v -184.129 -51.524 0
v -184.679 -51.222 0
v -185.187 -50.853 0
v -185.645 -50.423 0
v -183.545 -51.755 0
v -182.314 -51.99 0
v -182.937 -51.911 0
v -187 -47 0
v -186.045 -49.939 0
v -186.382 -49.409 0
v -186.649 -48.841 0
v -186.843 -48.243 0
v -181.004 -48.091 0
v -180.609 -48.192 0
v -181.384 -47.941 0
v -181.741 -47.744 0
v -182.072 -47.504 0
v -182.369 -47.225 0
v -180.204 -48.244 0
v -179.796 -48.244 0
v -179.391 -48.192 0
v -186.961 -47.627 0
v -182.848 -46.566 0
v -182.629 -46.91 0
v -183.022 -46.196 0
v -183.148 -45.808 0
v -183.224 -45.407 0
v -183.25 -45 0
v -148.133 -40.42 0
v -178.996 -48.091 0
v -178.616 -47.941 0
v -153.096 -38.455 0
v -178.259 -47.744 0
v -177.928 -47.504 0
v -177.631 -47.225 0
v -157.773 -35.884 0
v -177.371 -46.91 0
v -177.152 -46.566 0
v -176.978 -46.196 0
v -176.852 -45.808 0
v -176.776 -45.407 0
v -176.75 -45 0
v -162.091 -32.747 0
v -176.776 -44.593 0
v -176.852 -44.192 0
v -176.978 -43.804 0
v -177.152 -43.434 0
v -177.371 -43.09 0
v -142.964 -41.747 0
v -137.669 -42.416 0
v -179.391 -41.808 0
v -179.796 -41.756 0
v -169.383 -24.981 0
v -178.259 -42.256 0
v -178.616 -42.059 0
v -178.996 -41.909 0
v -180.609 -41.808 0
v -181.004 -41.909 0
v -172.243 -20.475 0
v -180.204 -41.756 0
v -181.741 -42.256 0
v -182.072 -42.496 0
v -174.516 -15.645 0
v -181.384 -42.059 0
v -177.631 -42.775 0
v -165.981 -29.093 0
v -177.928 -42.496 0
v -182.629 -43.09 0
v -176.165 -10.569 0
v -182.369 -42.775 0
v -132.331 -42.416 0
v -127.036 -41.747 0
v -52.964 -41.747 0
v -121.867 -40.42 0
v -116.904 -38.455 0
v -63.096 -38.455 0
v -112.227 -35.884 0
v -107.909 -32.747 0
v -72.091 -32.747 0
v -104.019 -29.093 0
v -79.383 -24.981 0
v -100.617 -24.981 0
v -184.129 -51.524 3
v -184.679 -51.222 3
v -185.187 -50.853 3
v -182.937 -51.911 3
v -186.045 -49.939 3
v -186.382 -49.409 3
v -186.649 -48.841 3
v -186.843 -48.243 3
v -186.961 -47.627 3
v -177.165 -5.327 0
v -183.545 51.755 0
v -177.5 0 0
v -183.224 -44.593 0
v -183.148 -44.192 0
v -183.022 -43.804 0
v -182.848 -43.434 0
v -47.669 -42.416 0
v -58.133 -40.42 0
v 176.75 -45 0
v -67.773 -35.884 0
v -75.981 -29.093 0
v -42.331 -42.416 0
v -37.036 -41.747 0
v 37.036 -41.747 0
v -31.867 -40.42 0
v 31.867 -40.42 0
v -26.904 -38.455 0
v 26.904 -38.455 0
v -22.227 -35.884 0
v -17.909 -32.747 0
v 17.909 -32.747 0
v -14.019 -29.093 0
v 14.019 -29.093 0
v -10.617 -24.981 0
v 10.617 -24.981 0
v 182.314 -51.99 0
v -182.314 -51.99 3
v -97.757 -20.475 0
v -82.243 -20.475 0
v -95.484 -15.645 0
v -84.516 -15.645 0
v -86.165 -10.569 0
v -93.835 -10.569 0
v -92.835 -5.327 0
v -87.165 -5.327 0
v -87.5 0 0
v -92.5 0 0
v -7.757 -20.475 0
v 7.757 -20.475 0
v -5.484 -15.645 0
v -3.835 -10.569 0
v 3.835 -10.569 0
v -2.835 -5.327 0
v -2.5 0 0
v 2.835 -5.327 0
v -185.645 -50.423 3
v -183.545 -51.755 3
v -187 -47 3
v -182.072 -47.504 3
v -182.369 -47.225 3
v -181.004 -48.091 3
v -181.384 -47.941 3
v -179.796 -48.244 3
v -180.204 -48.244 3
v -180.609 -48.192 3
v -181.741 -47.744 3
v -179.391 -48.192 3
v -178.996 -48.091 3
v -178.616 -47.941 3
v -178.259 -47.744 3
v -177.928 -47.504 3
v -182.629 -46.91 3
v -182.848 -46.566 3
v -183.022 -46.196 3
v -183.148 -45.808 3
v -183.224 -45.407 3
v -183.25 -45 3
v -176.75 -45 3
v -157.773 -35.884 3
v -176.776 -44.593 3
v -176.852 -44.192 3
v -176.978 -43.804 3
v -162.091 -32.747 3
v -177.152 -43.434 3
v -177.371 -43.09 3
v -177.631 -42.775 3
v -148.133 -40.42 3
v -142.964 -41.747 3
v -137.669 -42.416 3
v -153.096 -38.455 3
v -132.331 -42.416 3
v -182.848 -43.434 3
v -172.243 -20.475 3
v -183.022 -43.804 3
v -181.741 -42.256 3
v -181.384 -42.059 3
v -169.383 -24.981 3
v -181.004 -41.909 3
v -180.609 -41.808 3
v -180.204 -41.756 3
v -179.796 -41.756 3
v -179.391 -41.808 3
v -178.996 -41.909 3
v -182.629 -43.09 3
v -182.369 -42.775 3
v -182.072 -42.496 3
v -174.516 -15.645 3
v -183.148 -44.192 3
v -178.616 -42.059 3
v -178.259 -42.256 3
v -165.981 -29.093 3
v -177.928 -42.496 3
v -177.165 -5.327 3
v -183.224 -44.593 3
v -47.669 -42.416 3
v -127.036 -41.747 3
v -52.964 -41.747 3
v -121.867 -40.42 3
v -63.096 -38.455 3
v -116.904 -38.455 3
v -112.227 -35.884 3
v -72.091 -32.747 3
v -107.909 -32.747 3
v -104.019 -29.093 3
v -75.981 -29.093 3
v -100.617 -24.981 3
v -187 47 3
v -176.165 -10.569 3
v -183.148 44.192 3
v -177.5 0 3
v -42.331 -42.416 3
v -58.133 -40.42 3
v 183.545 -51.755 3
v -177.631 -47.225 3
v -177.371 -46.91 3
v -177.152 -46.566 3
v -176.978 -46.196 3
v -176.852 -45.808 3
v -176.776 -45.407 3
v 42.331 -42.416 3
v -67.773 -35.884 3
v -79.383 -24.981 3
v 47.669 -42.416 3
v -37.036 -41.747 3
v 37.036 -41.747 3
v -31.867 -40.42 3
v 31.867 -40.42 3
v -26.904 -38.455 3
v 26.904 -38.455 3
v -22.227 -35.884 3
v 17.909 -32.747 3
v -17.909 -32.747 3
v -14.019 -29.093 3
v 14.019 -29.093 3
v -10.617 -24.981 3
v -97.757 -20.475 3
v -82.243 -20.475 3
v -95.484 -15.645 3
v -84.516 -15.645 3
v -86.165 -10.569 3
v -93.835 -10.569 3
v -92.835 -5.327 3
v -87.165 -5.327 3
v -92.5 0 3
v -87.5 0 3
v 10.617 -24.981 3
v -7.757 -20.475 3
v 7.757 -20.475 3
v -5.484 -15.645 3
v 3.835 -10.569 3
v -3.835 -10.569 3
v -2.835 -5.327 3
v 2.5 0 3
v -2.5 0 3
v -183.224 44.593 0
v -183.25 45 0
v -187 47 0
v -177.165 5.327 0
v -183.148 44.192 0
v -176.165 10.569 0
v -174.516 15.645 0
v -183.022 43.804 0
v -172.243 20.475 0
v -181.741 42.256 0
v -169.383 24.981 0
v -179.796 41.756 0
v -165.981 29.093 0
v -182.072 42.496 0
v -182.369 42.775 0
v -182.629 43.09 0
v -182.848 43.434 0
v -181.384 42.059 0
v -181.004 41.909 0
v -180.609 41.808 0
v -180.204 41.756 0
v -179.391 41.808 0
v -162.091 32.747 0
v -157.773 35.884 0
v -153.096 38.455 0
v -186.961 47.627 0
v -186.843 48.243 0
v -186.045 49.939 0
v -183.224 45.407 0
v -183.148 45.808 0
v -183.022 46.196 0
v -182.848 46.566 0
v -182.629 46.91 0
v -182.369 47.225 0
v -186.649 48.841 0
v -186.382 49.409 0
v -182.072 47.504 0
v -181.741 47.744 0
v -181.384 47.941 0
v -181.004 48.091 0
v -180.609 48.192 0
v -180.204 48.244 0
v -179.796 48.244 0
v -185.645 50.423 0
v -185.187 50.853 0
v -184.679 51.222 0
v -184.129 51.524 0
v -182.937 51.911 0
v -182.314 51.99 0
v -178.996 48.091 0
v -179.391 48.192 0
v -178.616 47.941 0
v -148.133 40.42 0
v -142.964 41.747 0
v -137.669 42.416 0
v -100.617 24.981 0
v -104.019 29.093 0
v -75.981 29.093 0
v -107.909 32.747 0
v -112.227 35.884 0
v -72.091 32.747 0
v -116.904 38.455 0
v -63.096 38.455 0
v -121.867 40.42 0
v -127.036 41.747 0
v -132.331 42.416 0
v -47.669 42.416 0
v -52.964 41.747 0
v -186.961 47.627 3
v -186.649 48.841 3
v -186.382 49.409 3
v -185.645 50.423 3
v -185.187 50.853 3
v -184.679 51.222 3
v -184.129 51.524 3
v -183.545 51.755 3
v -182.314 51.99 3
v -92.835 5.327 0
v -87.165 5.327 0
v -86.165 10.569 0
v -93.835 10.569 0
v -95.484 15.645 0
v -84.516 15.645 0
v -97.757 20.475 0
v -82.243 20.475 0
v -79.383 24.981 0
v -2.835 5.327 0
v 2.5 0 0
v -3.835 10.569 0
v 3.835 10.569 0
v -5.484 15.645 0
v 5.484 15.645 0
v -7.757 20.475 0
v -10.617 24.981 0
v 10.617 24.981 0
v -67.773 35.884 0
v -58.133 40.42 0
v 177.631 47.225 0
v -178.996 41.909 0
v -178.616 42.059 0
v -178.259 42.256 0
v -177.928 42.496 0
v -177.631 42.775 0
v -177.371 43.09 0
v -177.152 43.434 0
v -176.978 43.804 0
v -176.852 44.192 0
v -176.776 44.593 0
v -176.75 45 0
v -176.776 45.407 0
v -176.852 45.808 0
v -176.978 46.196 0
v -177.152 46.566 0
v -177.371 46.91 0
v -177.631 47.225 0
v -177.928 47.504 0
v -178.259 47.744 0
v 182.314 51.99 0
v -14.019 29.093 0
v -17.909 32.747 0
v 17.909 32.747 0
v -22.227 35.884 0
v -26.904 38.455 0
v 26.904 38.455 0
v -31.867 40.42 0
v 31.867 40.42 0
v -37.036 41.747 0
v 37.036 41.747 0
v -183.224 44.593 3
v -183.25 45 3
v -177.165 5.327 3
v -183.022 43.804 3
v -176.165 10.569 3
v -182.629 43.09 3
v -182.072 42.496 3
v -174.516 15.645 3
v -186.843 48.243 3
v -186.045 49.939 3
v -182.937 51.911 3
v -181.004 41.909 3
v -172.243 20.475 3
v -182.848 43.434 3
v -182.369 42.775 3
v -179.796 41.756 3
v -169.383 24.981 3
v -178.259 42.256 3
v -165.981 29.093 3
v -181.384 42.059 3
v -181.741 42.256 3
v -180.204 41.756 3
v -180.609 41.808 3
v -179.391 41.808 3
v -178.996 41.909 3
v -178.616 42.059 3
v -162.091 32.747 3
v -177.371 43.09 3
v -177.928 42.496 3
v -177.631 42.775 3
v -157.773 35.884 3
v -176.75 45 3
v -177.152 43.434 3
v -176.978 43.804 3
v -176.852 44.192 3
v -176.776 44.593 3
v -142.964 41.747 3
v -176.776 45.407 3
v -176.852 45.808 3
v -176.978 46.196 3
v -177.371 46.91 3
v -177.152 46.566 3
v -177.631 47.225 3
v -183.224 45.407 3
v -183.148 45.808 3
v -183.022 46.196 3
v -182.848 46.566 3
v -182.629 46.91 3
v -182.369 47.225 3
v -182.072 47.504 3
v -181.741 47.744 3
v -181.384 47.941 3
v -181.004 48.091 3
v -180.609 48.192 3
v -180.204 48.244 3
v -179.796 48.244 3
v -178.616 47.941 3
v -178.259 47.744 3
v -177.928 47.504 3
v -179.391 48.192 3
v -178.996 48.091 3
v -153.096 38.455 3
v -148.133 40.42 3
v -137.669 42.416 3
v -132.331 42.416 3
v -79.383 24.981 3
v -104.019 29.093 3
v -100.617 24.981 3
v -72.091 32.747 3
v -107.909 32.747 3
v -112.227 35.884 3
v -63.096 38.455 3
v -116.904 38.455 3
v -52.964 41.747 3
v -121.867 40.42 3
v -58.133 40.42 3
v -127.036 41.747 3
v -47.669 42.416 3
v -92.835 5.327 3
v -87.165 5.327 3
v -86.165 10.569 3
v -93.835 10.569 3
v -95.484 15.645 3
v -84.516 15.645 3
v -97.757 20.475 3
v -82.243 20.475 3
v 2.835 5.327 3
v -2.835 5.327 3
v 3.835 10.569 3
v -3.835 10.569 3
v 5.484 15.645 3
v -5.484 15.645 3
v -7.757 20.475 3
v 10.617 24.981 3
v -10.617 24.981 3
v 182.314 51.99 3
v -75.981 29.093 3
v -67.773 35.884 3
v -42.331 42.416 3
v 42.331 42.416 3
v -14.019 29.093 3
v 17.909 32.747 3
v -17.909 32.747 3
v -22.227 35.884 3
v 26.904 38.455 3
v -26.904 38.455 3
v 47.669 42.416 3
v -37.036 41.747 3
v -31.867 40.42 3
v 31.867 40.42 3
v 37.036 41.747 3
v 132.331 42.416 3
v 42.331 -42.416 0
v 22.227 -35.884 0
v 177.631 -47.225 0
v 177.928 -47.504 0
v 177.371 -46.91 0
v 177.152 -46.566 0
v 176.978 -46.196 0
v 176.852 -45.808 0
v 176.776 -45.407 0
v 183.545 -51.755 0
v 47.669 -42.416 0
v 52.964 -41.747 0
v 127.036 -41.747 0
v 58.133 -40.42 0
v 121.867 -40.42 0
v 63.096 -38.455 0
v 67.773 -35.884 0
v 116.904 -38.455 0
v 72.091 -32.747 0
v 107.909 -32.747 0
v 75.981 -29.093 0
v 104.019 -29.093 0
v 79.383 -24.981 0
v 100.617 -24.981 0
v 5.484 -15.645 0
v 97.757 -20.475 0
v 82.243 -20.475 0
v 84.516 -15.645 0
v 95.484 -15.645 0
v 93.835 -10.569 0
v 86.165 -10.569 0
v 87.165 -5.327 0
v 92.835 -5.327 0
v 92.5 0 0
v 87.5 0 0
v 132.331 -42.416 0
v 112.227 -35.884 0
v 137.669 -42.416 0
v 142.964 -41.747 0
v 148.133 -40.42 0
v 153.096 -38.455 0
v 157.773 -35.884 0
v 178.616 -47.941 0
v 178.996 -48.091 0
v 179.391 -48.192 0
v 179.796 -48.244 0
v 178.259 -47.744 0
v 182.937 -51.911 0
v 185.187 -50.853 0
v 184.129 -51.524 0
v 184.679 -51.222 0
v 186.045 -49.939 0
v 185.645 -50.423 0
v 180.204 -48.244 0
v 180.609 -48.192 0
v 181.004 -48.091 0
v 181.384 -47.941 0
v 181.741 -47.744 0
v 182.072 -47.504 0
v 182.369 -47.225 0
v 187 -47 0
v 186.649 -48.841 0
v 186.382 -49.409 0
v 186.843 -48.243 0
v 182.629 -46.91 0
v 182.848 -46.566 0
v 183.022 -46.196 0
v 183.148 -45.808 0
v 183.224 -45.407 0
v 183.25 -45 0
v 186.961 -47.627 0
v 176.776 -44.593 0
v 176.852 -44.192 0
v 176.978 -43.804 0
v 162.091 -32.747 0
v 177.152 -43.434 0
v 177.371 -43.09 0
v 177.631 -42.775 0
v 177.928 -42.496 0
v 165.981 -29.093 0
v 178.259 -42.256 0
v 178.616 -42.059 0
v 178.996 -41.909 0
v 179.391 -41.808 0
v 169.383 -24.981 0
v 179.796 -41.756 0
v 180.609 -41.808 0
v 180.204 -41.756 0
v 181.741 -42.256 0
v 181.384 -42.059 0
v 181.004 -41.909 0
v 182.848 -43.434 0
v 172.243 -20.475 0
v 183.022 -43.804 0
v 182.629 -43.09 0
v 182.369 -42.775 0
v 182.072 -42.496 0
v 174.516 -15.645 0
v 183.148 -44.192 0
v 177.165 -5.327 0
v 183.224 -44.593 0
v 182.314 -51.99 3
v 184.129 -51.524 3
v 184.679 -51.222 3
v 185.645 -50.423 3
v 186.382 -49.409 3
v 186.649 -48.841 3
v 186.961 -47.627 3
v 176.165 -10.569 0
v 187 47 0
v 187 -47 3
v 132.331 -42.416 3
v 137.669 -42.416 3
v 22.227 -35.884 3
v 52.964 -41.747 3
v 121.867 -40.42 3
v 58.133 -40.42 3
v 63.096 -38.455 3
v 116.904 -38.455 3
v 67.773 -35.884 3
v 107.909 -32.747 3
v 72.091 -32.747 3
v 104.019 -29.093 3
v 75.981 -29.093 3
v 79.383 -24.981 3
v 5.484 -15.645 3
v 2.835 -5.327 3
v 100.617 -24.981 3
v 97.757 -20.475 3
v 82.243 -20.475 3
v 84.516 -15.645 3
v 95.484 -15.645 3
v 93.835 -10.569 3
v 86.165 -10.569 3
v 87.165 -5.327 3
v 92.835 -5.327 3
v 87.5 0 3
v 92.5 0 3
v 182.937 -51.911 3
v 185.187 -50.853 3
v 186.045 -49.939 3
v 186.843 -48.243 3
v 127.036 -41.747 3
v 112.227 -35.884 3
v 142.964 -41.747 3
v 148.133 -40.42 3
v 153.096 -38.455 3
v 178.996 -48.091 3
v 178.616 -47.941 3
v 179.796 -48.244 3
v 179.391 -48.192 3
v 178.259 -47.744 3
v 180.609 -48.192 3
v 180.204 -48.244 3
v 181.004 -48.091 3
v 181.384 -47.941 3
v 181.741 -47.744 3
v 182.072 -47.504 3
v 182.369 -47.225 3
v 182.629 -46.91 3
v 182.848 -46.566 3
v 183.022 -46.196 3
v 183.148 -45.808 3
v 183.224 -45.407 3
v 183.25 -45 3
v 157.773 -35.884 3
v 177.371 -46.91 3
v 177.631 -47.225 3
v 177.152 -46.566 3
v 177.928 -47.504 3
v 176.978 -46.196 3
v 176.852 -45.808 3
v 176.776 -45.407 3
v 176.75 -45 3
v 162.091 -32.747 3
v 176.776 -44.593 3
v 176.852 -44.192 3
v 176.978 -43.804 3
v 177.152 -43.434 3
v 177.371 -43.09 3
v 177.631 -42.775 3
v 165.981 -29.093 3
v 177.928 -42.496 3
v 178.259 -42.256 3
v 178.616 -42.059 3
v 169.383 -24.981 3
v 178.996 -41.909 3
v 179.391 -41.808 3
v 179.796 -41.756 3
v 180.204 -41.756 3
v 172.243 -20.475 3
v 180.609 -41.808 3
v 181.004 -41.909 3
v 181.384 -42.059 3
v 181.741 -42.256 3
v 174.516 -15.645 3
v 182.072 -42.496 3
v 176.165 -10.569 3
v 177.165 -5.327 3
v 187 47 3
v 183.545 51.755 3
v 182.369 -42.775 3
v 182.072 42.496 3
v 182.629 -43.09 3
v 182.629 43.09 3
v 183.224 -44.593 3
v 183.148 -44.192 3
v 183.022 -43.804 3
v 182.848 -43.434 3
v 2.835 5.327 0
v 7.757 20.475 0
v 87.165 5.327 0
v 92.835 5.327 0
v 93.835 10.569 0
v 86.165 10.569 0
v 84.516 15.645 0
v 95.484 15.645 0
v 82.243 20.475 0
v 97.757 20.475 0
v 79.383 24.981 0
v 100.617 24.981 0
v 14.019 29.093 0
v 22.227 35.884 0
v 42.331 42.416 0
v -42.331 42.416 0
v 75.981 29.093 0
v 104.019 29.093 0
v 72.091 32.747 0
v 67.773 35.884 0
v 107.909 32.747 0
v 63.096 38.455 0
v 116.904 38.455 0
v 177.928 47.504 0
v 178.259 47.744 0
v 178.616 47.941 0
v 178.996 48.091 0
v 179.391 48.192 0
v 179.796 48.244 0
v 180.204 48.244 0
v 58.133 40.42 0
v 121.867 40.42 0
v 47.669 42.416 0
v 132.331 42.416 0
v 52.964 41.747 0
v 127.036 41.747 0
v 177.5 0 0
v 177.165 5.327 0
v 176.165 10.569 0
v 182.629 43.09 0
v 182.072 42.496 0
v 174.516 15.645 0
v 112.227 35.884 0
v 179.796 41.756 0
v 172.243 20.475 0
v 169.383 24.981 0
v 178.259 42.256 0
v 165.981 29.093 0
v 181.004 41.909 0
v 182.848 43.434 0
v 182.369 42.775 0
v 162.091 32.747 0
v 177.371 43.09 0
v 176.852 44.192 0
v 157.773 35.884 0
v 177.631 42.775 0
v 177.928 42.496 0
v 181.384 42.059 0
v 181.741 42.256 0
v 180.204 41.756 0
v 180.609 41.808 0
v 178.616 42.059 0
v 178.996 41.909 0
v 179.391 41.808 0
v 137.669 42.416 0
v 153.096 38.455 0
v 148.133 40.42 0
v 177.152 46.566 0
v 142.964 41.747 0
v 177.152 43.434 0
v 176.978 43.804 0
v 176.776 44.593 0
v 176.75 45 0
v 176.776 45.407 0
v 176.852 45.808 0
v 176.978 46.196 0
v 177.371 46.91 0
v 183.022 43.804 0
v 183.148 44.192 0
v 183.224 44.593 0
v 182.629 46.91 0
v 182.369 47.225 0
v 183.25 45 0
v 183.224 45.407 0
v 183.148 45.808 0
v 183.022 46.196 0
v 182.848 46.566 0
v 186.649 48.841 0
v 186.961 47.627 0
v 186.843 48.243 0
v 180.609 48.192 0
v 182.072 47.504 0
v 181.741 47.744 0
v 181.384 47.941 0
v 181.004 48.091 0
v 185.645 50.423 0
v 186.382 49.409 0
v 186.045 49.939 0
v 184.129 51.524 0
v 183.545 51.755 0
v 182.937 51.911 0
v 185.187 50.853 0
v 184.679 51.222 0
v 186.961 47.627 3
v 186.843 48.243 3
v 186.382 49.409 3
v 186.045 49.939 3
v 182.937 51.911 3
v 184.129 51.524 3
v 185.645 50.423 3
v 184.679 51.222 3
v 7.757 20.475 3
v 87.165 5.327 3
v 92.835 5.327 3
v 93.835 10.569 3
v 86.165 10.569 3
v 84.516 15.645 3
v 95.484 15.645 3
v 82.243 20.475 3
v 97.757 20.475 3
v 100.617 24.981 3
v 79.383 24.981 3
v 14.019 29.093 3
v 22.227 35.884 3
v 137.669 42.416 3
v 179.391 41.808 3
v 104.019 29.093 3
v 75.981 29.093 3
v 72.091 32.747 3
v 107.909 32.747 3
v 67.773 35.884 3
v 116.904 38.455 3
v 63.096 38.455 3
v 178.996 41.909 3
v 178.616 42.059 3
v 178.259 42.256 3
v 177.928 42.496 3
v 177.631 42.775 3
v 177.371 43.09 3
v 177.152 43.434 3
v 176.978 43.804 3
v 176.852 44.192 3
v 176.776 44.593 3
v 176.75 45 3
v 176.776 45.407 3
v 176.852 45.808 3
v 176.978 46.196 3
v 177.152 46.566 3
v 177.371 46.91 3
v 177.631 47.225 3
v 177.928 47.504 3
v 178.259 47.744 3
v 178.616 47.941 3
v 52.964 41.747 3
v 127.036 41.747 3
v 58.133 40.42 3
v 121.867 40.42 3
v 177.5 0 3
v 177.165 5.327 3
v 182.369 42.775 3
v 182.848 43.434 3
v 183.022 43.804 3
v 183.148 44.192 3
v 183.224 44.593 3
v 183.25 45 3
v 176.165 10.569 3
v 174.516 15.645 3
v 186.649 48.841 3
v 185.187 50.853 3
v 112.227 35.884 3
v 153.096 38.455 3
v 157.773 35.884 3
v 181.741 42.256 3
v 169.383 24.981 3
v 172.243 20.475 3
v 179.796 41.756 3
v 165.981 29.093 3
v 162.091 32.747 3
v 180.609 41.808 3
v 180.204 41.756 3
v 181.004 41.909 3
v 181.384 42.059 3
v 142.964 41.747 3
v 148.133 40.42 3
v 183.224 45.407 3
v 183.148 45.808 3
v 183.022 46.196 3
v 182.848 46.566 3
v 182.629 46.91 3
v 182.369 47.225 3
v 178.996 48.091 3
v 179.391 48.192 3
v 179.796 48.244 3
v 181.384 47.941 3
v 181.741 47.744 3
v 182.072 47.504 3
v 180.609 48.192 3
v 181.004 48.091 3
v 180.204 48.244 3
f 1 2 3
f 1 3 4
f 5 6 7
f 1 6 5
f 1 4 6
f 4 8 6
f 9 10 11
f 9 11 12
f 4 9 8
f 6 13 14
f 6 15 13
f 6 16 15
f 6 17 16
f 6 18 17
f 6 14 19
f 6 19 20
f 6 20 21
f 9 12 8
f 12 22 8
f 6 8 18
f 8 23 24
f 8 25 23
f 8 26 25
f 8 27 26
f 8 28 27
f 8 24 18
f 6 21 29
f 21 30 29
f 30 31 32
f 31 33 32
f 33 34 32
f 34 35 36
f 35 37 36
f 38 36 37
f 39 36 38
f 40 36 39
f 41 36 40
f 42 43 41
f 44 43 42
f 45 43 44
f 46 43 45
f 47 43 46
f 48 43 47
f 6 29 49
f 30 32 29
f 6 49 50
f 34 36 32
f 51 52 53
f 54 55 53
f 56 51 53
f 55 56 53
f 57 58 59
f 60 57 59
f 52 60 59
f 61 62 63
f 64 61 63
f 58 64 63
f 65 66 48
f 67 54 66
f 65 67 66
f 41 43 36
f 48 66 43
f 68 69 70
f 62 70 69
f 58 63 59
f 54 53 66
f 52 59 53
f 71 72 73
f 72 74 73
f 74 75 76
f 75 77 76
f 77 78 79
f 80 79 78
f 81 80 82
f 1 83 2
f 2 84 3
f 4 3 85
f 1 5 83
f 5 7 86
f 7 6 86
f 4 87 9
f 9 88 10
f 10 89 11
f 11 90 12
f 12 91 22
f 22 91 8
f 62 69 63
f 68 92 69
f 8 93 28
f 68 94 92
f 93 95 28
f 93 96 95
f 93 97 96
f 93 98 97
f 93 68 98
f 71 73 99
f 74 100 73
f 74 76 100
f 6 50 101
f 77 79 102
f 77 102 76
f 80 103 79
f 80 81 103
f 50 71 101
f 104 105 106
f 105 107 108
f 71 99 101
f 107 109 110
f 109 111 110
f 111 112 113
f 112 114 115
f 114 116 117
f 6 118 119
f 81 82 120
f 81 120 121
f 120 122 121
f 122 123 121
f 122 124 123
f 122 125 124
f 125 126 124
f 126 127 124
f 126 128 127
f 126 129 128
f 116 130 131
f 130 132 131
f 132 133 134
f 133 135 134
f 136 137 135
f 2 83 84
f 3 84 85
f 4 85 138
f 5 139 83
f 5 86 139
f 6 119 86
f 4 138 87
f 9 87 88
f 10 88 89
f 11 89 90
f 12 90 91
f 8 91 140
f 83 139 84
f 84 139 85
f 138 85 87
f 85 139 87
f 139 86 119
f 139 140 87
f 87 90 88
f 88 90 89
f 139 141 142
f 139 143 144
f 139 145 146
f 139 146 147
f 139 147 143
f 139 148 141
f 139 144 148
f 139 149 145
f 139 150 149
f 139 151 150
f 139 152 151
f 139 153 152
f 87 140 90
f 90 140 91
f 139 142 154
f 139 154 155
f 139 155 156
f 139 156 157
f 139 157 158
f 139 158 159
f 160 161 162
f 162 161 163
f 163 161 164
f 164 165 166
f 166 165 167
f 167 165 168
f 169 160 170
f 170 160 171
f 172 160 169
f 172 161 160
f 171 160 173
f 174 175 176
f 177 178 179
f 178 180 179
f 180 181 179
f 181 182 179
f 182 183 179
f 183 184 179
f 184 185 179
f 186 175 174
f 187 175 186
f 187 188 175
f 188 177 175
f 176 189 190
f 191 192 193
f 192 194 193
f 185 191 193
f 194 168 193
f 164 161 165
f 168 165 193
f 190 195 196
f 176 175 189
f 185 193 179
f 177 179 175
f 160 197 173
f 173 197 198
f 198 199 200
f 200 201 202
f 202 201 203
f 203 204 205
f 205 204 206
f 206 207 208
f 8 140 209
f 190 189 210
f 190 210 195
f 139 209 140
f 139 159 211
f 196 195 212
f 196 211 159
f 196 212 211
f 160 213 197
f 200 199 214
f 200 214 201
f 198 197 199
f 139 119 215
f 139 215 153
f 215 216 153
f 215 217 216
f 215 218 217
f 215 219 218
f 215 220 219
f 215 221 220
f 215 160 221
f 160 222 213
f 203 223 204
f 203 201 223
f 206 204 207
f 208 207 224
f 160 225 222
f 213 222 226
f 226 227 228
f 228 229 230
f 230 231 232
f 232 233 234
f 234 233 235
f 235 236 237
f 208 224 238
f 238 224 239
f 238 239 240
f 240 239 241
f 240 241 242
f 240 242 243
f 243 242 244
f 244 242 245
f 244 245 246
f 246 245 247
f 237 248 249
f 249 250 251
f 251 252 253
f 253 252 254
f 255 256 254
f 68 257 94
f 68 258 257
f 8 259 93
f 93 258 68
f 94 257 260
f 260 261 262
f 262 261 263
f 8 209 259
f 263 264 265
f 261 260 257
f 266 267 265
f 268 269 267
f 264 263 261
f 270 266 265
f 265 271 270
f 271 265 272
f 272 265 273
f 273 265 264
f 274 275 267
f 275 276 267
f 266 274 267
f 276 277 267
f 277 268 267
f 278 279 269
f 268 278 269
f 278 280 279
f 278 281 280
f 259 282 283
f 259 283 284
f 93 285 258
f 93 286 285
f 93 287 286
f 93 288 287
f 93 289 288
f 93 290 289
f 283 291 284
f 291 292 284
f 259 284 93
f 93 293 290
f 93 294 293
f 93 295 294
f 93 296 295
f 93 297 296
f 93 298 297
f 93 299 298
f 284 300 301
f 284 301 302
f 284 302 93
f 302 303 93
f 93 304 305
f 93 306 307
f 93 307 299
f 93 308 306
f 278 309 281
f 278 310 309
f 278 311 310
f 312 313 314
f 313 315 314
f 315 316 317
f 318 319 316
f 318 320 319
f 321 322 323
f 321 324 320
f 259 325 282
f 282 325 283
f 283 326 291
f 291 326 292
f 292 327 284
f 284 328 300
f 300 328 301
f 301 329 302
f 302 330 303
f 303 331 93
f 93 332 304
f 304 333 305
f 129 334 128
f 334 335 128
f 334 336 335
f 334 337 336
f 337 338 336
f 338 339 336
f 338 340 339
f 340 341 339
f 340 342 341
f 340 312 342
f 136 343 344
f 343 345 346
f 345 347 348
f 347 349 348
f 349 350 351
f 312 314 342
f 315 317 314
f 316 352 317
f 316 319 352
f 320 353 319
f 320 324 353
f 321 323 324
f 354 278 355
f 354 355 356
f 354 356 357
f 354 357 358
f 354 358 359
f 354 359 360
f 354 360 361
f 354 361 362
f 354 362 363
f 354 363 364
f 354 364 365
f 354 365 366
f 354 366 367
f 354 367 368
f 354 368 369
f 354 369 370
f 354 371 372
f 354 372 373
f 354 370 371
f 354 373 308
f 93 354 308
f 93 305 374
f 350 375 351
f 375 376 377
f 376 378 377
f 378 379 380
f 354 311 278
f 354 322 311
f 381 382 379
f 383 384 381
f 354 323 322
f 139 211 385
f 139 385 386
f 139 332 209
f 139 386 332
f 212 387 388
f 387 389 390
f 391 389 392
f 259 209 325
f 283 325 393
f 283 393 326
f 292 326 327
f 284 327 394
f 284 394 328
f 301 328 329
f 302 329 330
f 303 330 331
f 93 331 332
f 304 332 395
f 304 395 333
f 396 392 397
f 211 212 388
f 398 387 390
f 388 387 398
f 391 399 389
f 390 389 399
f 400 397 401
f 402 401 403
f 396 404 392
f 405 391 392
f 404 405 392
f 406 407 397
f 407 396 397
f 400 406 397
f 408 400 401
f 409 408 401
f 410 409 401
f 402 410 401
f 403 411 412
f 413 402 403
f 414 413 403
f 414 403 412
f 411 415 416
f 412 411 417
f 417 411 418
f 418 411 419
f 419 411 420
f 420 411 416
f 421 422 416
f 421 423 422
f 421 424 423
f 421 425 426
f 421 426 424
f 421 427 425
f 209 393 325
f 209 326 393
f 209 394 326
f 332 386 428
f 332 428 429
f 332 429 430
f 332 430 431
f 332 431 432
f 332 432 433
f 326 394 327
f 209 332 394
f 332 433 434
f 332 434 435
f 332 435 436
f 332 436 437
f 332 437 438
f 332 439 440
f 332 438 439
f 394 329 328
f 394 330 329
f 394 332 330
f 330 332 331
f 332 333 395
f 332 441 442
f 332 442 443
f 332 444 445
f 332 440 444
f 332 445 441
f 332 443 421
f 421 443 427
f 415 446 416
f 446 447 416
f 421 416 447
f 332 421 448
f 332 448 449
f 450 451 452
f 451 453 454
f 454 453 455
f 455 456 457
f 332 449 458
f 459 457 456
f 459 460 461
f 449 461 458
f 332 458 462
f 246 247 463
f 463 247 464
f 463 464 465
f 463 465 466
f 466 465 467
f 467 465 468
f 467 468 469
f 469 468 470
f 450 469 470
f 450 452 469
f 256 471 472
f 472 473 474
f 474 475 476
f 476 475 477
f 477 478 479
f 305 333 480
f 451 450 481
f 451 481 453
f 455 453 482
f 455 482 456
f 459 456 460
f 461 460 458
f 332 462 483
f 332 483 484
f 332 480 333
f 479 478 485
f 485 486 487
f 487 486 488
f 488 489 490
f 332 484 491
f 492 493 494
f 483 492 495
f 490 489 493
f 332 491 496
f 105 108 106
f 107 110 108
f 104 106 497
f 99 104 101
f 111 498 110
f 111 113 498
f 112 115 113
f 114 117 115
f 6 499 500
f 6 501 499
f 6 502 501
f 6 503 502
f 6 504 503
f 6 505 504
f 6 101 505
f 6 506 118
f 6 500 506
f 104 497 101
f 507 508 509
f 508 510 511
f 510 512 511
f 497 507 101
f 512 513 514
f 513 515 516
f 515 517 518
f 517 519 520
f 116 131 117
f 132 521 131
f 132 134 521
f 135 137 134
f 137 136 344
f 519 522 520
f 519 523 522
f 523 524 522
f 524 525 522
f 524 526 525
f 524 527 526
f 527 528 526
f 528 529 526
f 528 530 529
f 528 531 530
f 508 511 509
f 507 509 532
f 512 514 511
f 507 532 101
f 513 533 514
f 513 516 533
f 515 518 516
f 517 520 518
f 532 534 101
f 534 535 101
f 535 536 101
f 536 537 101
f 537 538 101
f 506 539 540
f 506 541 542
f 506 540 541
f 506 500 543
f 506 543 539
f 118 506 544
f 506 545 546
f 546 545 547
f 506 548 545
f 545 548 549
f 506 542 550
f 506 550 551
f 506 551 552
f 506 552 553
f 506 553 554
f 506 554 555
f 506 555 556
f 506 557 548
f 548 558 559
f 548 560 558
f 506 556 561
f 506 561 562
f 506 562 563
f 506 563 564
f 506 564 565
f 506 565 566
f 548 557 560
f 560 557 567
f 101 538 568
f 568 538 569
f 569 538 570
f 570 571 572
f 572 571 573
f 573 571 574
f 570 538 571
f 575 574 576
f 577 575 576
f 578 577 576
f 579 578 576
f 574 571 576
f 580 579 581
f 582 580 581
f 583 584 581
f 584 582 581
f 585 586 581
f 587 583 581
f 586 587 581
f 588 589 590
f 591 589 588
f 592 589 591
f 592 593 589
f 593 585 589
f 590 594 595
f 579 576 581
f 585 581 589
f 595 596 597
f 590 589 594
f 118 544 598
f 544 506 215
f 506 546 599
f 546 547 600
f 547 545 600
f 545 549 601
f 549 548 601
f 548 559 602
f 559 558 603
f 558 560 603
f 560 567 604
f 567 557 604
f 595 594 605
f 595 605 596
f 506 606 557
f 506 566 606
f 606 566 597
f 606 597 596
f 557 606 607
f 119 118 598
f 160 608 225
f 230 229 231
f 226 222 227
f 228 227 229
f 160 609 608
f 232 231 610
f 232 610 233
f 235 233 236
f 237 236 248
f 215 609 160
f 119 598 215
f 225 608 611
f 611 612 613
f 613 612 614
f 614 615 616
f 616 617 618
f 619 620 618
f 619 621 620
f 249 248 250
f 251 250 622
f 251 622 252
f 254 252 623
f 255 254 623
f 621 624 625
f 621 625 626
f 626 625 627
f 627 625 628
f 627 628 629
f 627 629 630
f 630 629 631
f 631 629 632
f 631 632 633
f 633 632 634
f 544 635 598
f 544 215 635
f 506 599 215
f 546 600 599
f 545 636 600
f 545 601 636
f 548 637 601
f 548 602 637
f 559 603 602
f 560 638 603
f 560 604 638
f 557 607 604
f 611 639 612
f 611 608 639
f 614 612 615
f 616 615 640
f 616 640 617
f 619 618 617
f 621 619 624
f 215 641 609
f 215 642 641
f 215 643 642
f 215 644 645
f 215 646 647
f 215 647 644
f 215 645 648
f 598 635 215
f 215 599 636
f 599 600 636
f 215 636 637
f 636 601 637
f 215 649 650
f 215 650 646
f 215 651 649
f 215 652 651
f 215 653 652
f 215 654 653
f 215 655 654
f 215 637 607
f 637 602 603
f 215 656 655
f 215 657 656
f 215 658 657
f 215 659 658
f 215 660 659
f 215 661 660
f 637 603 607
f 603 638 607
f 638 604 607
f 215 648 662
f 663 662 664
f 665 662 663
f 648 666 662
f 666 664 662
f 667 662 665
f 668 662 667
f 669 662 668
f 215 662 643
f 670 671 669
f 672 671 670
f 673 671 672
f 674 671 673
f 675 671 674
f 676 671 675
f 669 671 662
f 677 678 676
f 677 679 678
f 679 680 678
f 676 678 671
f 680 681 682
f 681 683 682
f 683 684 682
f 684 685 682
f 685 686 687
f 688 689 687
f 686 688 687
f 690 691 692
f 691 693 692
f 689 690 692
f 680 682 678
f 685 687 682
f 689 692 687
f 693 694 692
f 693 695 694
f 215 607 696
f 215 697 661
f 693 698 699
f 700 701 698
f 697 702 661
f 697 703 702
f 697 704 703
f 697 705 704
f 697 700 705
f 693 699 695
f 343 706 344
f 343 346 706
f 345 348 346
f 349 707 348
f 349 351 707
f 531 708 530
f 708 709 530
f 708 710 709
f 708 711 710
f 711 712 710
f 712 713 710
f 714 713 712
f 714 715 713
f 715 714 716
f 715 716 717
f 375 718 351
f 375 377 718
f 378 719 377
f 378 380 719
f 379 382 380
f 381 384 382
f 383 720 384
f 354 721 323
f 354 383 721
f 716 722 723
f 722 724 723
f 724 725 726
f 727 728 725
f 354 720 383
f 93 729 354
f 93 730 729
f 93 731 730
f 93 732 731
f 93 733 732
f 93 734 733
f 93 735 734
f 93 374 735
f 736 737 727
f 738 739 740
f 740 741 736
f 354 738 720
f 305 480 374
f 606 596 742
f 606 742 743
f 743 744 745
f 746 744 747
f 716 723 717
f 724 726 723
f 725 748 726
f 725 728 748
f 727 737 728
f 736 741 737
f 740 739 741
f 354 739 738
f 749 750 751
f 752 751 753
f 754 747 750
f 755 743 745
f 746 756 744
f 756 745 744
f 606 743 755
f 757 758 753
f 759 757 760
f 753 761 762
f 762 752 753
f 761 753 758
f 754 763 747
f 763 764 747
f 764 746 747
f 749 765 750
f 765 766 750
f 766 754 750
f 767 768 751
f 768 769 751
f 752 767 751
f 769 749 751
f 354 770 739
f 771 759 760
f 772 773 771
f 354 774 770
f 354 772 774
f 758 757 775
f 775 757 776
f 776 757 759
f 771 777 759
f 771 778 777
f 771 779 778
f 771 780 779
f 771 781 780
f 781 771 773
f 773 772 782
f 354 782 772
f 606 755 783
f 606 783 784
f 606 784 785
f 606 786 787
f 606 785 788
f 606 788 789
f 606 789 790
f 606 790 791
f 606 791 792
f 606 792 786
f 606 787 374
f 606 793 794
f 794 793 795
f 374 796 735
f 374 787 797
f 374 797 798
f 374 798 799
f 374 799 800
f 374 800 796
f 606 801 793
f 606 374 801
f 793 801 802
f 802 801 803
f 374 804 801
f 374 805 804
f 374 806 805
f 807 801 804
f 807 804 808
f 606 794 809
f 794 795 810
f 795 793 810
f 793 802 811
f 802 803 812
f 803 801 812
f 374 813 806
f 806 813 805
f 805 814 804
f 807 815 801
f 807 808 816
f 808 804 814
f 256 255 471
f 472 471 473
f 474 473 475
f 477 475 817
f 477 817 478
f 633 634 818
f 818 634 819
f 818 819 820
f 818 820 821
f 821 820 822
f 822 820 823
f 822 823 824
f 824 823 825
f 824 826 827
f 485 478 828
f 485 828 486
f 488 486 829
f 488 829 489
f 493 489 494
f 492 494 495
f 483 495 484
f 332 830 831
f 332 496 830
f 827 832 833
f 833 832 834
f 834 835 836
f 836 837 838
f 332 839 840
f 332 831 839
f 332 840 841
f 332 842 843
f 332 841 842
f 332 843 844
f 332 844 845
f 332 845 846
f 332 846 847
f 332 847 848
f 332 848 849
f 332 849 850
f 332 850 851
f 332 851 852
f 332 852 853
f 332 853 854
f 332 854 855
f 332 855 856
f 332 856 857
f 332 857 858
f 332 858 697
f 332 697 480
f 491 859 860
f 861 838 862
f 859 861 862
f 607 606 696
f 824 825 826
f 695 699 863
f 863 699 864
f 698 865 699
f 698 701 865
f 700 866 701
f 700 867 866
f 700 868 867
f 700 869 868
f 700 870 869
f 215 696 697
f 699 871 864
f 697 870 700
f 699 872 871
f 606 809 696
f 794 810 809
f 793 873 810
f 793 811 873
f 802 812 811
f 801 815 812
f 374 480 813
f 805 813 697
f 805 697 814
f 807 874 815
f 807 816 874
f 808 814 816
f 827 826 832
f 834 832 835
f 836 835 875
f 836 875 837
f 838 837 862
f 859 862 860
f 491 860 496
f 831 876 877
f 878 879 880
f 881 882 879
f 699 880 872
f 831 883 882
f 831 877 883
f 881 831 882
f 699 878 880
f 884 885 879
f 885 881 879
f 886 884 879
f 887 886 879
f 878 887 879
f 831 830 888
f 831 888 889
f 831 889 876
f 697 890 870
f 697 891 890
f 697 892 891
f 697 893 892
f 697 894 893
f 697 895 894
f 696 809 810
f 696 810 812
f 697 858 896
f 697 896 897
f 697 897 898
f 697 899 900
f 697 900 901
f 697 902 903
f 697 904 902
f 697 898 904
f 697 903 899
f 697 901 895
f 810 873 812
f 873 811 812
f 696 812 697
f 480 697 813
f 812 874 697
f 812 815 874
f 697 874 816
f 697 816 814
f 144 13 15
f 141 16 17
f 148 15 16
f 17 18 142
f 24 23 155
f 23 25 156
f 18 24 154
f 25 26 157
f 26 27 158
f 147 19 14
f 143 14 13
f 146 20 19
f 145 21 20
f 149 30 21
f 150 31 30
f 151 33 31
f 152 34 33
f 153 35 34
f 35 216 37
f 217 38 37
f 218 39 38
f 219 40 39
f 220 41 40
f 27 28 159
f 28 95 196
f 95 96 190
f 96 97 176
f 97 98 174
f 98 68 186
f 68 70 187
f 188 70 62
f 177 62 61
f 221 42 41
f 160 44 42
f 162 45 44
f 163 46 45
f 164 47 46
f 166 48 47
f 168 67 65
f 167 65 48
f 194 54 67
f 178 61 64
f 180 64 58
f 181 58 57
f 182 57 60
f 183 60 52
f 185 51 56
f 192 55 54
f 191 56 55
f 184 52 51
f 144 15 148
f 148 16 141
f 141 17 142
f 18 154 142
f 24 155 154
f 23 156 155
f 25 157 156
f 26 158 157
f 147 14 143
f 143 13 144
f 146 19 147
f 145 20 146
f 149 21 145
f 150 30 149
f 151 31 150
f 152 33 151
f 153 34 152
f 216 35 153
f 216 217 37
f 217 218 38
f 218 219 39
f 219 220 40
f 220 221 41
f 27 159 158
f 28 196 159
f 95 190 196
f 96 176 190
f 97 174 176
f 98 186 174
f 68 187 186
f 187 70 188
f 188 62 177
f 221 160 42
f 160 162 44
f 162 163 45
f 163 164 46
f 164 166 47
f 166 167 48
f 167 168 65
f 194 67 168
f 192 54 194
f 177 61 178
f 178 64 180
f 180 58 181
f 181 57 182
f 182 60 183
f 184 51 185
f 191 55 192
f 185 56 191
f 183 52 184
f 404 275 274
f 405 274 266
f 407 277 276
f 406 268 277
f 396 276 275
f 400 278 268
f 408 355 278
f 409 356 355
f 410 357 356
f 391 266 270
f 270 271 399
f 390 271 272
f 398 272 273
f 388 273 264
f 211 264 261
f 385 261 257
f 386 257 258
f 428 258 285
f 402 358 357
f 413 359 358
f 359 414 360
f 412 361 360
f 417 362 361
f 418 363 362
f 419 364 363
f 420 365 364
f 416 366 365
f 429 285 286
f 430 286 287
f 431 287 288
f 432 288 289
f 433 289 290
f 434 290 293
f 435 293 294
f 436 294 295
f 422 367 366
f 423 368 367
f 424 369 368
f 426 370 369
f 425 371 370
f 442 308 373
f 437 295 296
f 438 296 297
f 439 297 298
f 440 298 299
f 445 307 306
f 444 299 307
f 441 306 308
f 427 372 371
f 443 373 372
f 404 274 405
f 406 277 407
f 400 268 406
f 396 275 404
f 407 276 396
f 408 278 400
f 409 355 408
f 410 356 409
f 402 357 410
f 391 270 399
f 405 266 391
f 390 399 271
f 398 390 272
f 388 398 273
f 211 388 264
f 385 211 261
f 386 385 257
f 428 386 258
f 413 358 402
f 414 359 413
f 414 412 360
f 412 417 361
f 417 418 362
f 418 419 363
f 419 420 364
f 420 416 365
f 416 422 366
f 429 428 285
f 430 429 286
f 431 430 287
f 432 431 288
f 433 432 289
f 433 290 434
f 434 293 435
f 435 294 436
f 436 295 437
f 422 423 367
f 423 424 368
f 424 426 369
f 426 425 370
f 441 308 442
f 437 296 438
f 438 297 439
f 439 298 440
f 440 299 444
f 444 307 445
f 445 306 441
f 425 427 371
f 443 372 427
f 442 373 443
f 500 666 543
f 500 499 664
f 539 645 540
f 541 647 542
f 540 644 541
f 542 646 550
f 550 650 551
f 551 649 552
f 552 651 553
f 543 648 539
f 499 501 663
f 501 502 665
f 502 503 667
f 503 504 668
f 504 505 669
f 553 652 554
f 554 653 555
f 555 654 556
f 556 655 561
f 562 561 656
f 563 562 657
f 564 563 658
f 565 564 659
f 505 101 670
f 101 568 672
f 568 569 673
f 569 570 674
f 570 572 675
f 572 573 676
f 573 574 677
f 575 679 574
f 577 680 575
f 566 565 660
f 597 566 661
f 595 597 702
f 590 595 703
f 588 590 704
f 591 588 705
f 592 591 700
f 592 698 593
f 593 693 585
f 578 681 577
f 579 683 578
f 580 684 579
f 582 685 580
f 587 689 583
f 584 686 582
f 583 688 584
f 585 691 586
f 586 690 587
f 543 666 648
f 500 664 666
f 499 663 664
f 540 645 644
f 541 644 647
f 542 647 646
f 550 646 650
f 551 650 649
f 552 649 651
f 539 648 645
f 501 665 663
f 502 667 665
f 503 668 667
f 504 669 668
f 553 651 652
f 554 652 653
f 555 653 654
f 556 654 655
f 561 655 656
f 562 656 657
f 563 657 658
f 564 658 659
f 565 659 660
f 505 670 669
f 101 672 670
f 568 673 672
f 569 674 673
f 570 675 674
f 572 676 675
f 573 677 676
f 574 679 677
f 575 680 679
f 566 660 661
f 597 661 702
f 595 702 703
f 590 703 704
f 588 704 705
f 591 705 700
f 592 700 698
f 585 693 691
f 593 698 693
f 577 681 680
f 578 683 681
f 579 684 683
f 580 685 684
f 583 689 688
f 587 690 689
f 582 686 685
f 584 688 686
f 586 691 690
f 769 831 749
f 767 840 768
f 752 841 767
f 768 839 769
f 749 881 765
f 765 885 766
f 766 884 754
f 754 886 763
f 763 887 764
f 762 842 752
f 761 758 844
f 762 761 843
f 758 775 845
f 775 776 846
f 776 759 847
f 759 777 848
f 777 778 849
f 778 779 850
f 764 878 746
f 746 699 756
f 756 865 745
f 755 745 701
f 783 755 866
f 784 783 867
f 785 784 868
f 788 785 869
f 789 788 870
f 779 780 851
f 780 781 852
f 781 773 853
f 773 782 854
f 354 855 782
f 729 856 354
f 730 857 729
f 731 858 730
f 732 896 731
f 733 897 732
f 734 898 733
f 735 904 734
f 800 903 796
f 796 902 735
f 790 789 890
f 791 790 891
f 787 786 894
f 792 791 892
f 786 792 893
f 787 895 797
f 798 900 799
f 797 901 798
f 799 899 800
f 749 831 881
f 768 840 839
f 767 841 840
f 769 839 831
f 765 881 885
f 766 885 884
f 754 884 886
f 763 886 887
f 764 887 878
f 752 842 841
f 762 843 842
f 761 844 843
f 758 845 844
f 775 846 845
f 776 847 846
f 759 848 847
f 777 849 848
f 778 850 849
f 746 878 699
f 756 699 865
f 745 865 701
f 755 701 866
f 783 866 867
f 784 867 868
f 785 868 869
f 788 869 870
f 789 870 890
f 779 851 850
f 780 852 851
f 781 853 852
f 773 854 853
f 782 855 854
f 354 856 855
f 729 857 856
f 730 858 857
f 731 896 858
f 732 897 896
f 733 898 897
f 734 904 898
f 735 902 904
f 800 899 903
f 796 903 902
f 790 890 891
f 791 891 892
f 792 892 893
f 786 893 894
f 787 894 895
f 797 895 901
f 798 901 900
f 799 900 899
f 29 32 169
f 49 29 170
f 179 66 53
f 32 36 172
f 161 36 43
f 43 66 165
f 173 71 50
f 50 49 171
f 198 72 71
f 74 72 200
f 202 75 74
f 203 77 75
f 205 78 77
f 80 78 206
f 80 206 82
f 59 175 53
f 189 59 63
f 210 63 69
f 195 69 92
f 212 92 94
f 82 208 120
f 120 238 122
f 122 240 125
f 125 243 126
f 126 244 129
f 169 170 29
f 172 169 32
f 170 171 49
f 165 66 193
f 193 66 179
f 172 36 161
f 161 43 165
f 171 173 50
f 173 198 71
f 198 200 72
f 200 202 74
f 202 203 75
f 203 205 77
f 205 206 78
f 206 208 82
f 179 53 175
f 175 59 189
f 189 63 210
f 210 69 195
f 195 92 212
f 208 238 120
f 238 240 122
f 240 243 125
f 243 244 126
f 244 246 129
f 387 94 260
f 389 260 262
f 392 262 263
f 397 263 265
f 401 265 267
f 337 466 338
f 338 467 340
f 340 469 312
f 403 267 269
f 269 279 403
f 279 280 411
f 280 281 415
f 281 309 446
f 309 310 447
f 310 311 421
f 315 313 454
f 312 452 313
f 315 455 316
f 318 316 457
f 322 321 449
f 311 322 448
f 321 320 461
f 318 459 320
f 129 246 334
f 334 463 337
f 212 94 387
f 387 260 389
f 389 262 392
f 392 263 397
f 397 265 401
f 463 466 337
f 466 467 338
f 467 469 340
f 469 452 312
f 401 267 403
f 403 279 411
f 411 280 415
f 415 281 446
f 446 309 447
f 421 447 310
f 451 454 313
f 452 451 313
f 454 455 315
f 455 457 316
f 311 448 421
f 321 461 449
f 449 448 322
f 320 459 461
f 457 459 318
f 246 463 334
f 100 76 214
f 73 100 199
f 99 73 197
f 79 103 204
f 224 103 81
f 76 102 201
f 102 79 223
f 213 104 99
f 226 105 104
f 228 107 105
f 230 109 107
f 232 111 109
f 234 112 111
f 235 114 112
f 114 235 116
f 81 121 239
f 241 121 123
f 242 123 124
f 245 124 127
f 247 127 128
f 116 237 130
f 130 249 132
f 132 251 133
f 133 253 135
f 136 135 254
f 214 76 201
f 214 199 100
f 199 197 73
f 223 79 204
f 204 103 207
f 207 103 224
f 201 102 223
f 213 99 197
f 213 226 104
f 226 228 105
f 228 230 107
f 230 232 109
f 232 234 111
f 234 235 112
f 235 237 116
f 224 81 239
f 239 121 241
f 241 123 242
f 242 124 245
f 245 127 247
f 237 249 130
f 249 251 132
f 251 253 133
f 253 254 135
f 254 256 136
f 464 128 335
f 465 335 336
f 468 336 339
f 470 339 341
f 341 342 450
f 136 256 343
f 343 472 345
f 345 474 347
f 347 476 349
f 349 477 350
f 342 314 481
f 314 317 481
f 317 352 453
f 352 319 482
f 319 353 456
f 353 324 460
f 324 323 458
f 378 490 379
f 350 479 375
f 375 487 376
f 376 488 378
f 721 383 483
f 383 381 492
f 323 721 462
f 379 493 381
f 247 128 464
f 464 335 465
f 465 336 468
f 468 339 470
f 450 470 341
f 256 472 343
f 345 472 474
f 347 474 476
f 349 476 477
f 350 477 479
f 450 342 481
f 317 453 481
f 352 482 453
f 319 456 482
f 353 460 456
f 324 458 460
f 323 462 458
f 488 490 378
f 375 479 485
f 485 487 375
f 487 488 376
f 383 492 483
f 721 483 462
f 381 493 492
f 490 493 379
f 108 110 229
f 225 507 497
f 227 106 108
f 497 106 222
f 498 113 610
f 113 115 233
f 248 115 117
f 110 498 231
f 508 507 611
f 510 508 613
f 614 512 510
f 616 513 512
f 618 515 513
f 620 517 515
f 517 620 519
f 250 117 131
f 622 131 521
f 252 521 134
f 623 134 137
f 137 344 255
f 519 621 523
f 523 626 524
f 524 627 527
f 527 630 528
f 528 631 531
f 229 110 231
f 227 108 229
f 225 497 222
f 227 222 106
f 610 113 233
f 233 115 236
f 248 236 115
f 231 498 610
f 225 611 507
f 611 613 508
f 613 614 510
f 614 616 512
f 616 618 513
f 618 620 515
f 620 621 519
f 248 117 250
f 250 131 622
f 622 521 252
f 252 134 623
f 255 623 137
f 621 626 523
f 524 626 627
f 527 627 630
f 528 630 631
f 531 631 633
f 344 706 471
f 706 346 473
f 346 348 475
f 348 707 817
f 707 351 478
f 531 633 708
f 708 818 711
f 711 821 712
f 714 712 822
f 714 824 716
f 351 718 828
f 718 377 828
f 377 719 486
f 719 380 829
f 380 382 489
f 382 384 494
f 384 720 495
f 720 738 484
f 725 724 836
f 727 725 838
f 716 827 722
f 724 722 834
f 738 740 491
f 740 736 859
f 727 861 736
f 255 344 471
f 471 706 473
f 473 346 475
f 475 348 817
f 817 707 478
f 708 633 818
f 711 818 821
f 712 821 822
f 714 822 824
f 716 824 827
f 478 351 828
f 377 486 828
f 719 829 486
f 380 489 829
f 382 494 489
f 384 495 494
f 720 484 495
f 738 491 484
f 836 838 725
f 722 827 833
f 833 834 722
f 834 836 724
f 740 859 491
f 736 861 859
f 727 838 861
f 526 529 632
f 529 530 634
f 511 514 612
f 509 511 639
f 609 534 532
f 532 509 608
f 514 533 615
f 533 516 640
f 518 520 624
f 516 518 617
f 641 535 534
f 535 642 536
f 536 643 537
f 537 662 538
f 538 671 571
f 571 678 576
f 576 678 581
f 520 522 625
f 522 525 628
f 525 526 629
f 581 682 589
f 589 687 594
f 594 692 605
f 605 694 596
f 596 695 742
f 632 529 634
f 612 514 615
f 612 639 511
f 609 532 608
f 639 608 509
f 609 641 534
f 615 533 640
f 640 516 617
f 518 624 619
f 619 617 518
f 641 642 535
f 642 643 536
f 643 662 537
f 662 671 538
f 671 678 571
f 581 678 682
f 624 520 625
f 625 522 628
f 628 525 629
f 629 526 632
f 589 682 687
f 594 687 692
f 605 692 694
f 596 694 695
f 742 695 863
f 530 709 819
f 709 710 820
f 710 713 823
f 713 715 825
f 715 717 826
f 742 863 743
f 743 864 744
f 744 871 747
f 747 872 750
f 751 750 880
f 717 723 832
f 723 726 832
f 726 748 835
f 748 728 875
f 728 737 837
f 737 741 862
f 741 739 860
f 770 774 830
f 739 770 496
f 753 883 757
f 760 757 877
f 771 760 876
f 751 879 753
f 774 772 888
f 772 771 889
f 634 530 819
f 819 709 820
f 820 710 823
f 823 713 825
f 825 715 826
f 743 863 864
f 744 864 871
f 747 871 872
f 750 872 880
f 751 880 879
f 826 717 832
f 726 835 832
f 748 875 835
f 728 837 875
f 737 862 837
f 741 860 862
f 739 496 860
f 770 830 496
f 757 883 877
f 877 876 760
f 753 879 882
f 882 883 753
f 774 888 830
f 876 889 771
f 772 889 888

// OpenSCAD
$fn = 50;

difference() {
	union() {
		hull() {
			translate(v = [-182.0, 47.0, 0]) {
				cylinder(h = 3, r = 5);
			}
			translate(v = [182.0, 47.0, 0]) {
				cylinder(h = 3, r = 5);
			}
			translate(v = [-182.0, -47.0, 0]) {
				cylinder(h = 3, r = 5);
			}
			translate(v = [182.0, -47.0, 0]) {
				cylinder(h = 3, r = 5);
			}
		}
	}
	union() {
		translate(v = [-180.0, -45.0, -100.0]) {
			cylinder(h = 200, r = 3.25);
		}
		translate(v = [-180.0, 45.0, -100.0]) {
			cylinder(h = 200, r = 3.25);
		}
		translate(v = [180.0, -45.0, -100.0]) {
			cylinder(h = 200, r = 3.25);
		}
		translate(v = [180.0, 45.0, -100.0]) {
			cylinder(h = 200, r = 3.25);
		}
		translate(v = [-180.0, -45.0, -100.0]) {
			cylinder(h = 200, r = 1.8);
		}
		translate(v = [-180.0, 45.0, -100.0]) {
			cylinder(h = 200, r = 1.8);
		}
		translate(v = [180.0, -45.0, -100.0]) {
			cylinder(h = 200, r = 1.8);
		}
		translate(v = [180.0, 45.0, -100.0]) {
			cylinder(h = 200, r = 1.8);
		}
		translate(v = [-135.0, 0, 0.0]) {
			cylinder(h = 3, r = 42.5);
		}
		translate(v = [-45.0, 0, 0.0]) {
			cylinder(h = 3, r = 42.5);
		}
		translate(v = [45.0, 0, 0.0]) {
			cylinder(h = 3, r = 42.5);
		}
		translate(v = [135.0, 0, 0.0]) {
			cylinder(h = 3, r = 42.5);
		}
	}
}
